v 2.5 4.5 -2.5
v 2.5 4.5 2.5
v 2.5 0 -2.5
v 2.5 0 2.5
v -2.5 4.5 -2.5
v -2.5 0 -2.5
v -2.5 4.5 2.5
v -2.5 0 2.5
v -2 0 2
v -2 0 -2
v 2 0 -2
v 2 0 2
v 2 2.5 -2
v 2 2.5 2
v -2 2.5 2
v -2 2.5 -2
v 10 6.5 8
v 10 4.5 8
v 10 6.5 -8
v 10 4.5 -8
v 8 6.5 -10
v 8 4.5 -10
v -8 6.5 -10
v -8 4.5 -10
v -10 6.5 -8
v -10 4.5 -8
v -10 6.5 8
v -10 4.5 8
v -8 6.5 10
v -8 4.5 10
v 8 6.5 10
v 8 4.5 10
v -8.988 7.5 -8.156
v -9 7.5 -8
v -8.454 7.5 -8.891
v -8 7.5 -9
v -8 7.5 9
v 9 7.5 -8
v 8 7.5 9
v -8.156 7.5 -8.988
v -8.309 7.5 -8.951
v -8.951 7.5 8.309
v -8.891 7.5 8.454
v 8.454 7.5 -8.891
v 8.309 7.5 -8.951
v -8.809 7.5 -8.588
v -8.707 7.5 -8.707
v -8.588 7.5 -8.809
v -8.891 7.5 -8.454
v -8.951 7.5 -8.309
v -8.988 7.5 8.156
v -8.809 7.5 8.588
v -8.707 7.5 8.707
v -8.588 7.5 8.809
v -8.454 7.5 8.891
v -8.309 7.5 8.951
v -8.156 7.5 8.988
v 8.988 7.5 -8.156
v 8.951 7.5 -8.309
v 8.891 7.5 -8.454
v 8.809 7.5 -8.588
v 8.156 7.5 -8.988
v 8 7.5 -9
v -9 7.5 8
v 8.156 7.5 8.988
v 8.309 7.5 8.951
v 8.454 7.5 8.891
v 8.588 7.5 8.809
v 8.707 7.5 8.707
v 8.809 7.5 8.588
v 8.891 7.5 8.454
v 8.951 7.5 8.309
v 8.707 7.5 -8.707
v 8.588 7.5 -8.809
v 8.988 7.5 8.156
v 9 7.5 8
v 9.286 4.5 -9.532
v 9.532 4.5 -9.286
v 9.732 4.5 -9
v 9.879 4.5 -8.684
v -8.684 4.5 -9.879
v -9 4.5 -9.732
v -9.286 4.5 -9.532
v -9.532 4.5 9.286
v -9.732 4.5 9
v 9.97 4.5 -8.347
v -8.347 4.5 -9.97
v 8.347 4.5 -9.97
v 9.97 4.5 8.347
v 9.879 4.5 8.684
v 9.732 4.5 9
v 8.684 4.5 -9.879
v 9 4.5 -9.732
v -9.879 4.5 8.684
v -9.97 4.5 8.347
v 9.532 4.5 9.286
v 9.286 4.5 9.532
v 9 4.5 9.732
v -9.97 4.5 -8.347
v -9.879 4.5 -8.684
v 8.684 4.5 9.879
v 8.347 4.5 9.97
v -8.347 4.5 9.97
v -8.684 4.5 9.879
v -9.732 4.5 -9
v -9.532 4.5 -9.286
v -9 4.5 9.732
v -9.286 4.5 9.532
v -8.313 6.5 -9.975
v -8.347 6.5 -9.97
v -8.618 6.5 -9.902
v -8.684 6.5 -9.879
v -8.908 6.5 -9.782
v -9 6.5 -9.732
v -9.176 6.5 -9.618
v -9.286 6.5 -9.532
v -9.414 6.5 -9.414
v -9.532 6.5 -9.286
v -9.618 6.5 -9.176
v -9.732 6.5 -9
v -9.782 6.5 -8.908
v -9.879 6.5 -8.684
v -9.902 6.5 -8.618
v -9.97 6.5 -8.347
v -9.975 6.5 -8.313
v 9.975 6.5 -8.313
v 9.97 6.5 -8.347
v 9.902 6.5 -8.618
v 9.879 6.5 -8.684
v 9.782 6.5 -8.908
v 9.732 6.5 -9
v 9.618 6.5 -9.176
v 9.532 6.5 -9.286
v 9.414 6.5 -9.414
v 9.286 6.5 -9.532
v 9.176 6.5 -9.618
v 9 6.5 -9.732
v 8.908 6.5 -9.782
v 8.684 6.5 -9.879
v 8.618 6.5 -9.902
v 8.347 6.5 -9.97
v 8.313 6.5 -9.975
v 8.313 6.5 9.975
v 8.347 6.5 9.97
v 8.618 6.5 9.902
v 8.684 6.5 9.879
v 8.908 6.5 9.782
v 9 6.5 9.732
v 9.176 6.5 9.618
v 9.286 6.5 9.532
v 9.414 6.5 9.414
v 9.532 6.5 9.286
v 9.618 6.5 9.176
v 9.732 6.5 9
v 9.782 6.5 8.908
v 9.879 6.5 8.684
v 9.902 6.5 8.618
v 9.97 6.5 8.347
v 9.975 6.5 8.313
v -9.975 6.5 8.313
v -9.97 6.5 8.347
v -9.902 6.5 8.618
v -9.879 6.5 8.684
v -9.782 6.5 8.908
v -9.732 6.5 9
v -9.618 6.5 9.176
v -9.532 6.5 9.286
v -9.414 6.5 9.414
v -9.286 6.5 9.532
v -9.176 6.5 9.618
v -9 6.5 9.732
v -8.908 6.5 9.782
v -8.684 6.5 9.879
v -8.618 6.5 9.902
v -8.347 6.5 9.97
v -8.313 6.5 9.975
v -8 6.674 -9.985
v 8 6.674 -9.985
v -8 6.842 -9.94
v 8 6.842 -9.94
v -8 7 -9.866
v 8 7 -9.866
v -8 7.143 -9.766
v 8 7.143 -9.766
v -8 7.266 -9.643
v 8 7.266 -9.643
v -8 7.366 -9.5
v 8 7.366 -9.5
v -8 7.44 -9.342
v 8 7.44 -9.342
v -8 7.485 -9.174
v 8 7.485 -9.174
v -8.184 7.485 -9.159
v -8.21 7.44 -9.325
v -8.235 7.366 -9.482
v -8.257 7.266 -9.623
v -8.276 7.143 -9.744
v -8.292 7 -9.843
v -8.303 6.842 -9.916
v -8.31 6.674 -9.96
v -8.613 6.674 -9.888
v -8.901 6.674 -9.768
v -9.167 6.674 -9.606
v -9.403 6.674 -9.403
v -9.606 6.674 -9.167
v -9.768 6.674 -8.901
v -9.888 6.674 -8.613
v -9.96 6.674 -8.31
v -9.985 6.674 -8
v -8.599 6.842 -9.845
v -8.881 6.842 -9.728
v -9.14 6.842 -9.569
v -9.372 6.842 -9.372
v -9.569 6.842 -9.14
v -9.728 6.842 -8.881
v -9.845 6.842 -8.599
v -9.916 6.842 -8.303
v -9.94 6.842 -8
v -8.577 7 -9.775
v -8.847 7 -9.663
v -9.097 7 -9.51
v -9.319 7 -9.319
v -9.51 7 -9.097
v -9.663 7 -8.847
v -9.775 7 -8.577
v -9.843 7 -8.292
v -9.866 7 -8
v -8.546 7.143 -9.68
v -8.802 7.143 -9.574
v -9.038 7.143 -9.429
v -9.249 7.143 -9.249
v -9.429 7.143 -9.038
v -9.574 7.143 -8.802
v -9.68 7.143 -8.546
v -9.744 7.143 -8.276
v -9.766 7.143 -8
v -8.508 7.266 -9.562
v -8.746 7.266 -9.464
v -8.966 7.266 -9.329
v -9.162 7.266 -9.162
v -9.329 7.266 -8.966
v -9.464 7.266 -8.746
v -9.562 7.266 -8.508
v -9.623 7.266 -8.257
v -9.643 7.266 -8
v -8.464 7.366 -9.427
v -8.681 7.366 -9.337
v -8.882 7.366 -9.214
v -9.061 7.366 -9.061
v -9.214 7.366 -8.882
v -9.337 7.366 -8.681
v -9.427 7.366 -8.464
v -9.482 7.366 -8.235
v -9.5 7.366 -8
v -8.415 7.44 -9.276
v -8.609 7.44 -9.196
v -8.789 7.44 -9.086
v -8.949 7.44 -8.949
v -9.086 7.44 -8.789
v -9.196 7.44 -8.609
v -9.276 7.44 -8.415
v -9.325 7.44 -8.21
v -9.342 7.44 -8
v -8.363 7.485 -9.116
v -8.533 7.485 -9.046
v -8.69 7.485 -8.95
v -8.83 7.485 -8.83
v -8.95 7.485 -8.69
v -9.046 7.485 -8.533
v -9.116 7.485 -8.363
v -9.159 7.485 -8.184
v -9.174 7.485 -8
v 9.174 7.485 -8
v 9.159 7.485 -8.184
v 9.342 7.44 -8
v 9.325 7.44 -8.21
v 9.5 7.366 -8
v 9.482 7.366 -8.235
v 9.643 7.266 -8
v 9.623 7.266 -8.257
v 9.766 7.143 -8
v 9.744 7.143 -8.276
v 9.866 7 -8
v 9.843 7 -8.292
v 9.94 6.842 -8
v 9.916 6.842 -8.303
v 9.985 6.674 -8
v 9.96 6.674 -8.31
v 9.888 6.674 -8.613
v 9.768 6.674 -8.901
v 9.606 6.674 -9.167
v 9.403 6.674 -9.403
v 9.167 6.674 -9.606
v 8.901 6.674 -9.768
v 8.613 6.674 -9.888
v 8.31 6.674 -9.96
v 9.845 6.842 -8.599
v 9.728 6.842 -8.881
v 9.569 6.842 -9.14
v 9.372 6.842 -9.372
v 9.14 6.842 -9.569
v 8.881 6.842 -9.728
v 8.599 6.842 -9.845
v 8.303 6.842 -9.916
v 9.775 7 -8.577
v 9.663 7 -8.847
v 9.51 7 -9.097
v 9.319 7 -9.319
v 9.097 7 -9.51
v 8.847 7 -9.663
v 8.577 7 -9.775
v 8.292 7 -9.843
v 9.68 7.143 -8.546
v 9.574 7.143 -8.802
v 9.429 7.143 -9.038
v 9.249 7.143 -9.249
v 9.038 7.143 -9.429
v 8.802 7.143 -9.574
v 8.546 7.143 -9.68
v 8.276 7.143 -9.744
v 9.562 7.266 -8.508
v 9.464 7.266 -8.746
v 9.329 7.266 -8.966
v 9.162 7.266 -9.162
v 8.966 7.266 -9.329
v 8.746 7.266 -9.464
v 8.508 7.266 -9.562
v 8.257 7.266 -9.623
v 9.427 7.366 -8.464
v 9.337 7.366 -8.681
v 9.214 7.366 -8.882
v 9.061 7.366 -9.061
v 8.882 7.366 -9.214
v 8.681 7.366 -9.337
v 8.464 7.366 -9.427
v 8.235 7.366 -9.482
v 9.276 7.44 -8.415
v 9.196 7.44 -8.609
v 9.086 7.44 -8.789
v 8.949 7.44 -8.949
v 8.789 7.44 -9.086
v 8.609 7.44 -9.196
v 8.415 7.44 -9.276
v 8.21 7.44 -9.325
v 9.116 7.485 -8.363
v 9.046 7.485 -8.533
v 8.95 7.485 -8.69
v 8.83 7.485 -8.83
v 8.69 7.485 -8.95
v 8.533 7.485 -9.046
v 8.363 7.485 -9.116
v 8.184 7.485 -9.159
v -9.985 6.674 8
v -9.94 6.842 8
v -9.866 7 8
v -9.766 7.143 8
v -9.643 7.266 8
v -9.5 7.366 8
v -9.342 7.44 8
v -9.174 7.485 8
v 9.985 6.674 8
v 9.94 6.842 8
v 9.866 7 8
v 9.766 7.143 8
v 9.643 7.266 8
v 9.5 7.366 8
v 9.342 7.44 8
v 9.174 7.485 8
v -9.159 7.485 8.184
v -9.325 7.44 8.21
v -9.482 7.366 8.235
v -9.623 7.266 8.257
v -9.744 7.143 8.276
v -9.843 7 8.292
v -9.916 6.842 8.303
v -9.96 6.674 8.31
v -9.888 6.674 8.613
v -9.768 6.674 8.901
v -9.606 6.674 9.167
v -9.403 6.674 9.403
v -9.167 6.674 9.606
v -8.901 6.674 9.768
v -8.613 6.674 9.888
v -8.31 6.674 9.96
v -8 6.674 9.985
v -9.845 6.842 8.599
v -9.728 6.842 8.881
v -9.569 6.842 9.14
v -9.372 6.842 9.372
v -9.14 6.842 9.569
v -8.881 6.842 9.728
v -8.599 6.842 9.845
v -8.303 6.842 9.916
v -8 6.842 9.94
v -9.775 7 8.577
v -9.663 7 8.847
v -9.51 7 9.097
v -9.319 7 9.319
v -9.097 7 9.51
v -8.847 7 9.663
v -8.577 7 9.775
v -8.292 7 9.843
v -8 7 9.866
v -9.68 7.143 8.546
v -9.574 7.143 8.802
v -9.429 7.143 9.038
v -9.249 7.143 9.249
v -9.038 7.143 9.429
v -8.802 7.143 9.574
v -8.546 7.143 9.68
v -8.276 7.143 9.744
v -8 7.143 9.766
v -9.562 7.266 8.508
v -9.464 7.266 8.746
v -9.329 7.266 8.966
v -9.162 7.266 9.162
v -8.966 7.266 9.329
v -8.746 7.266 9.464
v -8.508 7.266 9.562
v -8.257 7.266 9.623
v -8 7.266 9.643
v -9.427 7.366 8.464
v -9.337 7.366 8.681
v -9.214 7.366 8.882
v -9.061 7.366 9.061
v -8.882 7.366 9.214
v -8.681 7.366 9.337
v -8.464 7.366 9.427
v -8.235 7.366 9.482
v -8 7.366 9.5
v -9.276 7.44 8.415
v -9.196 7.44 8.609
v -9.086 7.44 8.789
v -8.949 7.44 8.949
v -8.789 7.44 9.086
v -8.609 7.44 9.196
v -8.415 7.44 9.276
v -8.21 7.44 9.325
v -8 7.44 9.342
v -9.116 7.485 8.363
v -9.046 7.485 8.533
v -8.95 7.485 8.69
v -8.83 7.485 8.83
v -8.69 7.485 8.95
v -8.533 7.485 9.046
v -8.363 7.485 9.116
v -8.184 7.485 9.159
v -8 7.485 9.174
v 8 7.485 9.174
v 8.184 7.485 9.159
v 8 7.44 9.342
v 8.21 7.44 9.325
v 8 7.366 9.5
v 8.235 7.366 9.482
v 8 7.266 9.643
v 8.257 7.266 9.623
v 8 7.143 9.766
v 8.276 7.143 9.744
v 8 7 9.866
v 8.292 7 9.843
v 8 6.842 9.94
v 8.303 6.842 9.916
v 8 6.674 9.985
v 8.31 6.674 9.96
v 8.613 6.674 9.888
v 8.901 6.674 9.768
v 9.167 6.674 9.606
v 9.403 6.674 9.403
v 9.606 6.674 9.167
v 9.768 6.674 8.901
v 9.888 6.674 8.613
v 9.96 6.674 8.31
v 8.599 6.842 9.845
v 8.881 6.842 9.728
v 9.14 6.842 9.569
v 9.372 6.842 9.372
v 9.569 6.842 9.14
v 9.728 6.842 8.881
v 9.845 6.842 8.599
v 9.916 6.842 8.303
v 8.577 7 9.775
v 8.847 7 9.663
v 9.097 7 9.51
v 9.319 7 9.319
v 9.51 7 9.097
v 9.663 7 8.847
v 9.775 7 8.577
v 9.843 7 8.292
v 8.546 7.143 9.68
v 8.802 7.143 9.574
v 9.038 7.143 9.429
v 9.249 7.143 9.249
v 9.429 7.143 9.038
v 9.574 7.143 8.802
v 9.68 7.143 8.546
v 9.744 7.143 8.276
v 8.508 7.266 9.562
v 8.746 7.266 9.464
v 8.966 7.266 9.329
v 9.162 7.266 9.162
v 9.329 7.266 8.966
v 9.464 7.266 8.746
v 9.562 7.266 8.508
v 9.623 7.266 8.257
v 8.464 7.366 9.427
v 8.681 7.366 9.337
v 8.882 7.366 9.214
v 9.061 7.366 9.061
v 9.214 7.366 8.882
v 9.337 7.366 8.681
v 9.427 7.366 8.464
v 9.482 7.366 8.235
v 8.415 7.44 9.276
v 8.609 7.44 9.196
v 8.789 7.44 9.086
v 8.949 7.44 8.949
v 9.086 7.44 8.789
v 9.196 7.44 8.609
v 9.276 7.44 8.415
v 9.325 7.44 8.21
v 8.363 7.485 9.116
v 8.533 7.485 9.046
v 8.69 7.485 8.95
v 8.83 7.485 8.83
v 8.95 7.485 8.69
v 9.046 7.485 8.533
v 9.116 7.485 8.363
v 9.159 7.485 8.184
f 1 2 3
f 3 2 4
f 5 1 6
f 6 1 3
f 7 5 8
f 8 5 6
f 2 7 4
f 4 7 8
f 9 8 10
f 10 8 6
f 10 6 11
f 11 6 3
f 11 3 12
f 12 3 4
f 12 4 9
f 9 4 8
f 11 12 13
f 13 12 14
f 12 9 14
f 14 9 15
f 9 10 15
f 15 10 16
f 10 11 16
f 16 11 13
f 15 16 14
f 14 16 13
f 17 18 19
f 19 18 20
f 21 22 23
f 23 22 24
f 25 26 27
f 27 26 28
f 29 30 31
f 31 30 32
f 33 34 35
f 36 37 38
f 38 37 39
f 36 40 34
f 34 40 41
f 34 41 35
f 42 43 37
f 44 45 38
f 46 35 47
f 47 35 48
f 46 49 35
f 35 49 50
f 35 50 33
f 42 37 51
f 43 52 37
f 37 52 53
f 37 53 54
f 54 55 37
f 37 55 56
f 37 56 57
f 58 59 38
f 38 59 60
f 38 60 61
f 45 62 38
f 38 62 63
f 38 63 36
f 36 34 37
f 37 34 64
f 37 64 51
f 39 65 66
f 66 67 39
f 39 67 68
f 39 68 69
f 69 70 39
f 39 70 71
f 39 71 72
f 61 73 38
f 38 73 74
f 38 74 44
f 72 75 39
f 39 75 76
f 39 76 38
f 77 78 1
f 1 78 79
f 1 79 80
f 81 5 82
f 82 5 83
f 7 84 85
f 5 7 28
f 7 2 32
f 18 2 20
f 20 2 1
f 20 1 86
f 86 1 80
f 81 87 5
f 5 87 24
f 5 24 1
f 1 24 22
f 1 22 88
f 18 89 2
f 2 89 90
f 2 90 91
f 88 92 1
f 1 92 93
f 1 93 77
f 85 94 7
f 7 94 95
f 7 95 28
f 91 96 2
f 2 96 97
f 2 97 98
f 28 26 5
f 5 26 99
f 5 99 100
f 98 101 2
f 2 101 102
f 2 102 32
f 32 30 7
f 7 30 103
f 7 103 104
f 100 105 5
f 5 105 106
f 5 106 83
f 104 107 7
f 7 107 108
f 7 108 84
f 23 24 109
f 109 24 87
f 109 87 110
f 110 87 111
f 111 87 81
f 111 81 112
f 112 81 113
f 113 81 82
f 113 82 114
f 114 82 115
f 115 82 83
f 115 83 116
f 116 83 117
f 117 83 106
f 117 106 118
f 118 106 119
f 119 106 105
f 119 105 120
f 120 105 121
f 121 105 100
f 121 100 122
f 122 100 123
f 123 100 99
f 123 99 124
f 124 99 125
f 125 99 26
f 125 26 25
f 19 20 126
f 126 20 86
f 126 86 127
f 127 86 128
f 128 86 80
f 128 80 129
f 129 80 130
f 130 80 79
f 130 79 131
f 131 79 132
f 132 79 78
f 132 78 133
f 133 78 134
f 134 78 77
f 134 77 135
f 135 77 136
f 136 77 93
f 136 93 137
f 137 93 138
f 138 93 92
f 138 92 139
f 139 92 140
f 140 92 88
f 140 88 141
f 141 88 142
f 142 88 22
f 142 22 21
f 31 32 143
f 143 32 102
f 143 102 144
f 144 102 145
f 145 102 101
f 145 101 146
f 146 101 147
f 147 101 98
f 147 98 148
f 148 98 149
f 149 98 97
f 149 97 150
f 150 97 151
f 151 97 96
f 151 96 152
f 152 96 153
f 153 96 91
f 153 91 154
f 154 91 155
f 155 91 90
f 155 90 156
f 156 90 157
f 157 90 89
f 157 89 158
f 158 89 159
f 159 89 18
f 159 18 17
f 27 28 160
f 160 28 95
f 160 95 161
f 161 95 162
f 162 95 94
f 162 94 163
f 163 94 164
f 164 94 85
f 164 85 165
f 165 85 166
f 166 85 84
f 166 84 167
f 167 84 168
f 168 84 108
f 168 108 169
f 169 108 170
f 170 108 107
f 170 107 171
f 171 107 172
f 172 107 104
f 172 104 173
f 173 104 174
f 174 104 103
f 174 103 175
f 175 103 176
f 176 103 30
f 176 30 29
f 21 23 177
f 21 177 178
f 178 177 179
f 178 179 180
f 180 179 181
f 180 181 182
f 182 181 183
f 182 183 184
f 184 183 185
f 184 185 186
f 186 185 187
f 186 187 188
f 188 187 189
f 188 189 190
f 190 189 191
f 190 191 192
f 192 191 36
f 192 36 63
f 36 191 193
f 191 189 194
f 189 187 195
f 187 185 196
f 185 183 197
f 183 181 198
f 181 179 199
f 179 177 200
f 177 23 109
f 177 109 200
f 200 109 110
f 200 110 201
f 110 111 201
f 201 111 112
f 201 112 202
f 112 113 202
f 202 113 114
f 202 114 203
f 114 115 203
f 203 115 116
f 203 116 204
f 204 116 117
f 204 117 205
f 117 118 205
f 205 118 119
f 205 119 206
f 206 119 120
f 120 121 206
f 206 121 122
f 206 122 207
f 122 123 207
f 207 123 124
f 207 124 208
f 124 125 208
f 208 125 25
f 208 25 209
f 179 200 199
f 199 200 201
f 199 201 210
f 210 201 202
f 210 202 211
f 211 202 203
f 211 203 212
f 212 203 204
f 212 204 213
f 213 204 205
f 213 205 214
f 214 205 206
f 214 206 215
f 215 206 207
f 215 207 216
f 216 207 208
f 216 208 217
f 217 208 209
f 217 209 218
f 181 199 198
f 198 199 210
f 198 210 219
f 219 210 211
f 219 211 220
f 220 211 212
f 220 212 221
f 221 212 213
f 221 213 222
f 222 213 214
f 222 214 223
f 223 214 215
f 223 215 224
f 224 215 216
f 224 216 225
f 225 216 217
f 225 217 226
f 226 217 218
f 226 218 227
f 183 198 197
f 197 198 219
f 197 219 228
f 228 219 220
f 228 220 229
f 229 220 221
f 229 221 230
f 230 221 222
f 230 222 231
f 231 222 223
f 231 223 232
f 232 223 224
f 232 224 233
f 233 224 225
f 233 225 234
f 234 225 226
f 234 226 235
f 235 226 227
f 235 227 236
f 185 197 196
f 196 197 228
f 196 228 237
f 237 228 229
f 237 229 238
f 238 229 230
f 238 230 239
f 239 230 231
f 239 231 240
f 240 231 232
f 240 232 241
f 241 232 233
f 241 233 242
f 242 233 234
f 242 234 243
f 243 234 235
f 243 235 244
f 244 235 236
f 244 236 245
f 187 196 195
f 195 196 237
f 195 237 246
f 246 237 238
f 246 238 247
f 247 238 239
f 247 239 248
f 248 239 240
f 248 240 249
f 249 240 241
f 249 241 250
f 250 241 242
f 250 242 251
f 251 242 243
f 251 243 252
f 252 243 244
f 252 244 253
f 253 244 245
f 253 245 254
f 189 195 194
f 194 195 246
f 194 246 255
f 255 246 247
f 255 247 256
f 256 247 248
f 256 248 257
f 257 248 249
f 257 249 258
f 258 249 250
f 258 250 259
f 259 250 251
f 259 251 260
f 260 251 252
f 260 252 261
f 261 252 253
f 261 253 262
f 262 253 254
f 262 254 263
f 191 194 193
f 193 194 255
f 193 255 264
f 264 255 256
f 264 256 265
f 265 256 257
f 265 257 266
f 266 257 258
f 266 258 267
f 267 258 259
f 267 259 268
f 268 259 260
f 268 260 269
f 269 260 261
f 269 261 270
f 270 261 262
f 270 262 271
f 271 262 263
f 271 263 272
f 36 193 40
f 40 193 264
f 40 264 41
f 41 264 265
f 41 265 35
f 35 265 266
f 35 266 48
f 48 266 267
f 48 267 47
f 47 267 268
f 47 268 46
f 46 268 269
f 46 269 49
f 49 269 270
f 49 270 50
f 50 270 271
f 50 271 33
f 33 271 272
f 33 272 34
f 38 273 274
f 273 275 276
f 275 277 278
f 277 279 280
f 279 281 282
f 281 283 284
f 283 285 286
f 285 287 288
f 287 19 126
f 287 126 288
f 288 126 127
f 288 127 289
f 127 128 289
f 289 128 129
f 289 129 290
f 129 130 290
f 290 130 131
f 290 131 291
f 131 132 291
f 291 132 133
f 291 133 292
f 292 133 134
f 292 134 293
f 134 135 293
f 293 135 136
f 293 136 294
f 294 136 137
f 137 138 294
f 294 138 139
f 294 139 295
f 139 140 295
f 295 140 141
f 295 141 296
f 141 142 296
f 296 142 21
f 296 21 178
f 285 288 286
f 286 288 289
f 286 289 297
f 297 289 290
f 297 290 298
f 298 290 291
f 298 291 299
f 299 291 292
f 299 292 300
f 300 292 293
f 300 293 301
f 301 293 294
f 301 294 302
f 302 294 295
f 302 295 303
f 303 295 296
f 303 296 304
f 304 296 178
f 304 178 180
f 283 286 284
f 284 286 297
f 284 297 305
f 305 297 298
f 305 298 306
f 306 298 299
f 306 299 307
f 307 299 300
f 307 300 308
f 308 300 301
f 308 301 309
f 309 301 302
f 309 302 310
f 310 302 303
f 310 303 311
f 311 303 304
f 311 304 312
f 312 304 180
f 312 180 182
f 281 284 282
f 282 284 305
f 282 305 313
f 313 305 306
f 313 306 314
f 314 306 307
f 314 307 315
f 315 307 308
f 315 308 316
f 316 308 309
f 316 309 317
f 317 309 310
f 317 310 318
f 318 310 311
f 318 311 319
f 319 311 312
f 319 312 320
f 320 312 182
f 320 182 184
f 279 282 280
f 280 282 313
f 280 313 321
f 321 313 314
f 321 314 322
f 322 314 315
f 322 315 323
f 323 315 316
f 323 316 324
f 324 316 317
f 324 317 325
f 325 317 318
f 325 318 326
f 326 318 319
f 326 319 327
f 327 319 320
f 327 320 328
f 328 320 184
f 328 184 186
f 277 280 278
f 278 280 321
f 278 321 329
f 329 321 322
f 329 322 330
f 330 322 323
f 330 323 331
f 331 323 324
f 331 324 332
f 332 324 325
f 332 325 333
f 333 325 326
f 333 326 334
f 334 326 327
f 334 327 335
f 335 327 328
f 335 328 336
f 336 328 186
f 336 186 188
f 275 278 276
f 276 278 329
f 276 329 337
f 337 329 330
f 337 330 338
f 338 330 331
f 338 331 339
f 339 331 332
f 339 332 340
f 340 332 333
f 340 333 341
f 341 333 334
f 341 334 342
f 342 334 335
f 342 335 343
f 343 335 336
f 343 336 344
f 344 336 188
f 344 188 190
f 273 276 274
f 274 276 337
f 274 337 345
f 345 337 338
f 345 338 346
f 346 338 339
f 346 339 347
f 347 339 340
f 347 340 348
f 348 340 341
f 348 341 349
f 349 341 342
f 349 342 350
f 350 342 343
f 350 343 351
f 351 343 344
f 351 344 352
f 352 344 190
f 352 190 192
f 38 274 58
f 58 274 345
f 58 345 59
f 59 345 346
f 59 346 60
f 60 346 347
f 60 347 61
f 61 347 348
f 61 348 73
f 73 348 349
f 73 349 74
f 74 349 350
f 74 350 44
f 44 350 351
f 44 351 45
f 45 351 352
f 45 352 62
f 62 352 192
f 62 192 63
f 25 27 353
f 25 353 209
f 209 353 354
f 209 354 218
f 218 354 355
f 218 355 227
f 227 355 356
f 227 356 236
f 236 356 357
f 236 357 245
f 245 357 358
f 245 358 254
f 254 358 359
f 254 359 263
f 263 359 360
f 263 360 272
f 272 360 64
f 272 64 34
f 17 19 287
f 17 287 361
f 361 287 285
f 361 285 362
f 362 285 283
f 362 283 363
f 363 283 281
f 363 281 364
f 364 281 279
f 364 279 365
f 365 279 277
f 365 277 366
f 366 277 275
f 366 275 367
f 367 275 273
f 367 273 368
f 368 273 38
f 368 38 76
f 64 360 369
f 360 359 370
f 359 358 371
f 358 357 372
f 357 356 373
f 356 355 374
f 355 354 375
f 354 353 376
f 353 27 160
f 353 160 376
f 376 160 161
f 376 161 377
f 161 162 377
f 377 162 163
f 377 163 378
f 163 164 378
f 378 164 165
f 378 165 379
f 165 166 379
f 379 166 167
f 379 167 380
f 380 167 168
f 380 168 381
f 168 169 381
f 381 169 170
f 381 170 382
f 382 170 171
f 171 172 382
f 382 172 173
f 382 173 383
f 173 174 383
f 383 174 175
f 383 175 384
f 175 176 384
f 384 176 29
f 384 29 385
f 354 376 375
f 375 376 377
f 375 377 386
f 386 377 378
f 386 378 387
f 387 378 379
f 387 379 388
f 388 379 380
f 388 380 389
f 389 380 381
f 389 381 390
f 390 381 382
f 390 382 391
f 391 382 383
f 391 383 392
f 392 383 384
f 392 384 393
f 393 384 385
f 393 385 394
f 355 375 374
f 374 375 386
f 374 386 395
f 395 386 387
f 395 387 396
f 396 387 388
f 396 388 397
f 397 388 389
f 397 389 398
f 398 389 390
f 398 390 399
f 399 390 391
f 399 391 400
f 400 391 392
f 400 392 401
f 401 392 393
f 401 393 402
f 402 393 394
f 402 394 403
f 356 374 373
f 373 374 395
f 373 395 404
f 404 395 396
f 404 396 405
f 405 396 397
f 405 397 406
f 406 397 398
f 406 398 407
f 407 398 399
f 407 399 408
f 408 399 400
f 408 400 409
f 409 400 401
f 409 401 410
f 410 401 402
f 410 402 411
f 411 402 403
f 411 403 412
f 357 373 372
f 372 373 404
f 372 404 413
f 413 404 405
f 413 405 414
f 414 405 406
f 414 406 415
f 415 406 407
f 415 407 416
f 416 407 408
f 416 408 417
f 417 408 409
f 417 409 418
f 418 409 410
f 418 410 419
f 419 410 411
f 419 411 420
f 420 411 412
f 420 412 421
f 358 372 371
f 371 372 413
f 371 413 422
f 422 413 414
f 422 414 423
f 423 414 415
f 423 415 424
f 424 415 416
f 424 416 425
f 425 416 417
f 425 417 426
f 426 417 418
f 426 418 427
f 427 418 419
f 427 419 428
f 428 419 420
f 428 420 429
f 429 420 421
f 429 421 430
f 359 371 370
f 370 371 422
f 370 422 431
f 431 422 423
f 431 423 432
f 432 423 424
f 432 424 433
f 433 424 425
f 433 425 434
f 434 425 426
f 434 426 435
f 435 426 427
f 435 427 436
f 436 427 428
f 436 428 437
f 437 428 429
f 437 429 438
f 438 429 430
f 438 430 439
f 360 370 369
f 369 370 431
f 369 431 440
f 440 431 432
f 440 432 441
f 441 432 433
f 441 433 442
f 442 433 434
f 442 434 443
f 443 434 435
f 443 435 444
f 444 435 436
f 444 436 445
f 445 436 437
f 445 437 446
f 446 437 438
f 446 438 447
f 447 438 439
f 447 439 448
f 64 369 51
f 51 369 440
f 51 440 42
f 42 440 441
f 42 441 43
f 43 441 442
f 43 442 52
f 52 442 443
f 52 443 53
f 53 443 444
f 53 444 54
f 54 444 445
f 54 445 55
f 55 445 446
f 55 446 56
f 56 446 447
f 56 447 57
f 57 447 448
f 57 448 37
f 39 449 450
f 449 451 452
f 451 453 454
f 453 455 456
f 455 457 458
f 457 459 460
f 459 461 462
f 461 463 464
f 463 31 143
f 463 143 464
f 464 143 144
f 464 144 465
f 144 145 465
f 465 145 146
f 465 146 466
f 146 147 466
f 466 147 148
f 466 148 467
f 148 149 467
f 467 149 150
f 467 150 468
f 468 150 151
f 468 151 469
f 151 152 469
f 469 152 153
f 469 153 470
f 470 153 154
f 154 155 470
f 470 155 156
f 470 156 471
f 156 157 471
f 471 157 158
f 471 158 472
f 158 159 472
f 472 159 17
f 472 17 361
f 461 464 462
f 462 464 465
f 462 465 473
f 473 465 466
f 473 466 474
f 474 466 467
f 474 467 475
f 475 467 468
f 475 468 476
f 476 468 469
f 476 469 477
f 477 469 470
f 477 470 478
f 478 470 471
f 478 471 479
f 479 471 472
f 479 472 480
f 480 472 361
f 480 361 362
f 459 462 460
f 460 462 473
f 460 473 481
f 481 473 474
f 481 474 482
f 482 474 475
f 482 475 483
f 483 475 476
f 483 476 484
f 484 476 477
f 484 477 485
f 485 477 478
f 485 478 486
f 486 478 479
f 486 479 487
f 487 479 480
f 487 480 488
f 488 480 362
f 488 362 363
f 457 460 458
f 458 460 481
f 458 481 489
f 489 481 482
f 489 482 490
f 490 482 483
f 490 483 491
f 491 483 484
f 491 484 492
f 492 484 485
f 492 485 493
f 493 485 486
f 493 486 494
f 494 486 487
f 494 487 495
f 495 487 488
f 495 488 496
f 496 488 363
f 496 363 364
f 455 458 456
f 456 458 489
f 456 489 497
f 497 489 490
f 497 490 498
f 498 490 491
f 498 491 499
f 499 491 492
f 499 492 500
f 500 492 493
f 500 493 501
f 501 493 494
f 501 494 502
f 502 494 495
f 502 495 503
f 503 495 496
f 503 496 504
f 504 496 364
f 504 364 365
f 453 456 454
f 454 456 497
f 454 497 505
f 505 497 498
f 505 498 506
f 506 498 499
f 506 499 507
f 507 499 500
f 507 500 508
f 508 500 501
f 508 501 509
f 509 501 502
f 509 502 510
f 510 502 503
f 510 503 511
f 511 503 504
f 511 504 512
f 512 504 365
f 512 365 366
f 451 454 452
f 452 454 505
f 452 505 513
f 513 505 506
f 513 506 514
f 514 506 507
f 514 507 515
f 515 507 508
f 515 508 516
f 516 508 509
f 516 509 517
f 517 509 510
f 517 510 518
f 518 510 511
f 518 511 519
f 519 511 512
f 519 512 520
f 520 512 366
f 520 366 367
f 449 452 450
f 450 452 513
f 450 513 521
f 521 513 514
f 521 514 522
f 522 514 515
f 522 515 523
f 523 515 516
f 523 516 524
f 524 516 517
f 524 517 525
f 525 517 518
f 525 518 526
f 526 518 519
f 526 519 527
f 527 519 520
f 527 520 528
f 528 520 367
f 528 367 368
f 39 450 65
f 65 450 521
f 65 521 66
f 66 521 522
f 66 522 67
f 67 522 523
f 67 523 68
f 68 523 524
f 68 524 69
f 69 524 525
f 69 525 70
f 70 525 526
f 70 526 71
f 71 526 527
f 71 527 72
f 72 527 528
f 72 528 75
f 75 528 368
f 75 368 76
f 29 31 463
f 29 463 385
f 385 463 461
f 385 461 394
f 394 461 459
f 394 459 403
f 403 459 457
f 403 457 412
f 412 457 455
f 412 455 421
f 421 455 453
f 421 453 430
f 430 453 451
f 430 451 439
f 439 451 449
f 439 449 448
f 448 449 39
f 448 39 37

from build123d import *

# Parameters (mm, degrees)
SKETCH_1_W          = 5
SKETCH_1_H          = 5
EXTRUDE_1_DEPTH     = 2.5
SKETCH_2_W          = 4
SKETCH_2_H          = 4
CUT_EXTRUDE_1_DEPTH = 2.5
SKETCH_4_W          = 5
SKETCH_4_H          = 5
EXTRUDE_3_DEPTH     = 2
SKETCH_5_W          = 20
SKETCH_5_H          = 20
EXTRUDE_4_DEPTH     = 3
FILLET_6_R          = 2
FILLET_7_R          = 1


with BuildPart() as part:
    # 스케치1 → 보스-돌출1 (new body)
    with BuildSketch(Plane(origin=(0, 0, 0), x_dir=(1, 0, 0), z_dir=(0, 1, 0))):
        Rectangle(SKETCH_1_W, SKETCH_1_H)
    extrude(amount=EXTRUDE_1_DEPTH)

    # 스케치2 → 컷-돌출1 (cut)
    with BuildSketch(Plane(origin=(0, 2.5, 0), x_dir=(1, 0, 0), z_dir=(0, 1, 0))):
        Rectangle(SKETCH_2_W, SKETCH_2_H)
    extrude(amount=-CUT_EXTRUDE_1_DEPTH, mode=Mode.SUBTRACT)

    # 스케치4 → 보스-돌출3 (add)
    with BuildSketch(Plane(origin=(0, 2.5, 0), x_dir=(1, 0, 0), z_dir=(0, 1, 0))):
        Rectangle(SKETCH_4_W, SKETCH_4_H)
    extrude(amount=EXTRUDE_3_DEPTH)

    # 스케치5 → 보스-돌출4 (add)
    with BuildSketch(Plane(origin=(0, 4.5, 0), x_dir=(1, 0, 0), z_dir=(0, 1, 0))):
        Rectangle(SKETCH_5_W, SKETCH_5_H)
    extrude(amount=EXTRUDE_4_DEPTH)

    # 필렛6
    fillet_6_edges = [part.edges().sort_by_distance(p)[0] for p in [
        (10, 6, 10),
        (10, 6, -10),
        (-10, 6, -10),
        (-10, 6, 10),
    ]]
    fillet(fillet_6_edges, radius=FILLET_6_R)

    # 필렛7
    fillet_7_edges = [part.edges().sort_by_distance(p)[0] for p in [
        (-10, 7.5, 0),
        (0, 7.5, -10),
        (10, 7.5, 0),
        (0, 7.5, 10),
        (-9.414213562, 7.5, 9.414213562),
        (9.414213562, 7.5, 9.414213562),
        (9.414213562, 7.5, -9.414213562),
        (-9.414213562, 7.5, -9.414213562),
    ]]
    fillet(fillet_7_edges, radius=FILLET_7_R)


solid = part.part
